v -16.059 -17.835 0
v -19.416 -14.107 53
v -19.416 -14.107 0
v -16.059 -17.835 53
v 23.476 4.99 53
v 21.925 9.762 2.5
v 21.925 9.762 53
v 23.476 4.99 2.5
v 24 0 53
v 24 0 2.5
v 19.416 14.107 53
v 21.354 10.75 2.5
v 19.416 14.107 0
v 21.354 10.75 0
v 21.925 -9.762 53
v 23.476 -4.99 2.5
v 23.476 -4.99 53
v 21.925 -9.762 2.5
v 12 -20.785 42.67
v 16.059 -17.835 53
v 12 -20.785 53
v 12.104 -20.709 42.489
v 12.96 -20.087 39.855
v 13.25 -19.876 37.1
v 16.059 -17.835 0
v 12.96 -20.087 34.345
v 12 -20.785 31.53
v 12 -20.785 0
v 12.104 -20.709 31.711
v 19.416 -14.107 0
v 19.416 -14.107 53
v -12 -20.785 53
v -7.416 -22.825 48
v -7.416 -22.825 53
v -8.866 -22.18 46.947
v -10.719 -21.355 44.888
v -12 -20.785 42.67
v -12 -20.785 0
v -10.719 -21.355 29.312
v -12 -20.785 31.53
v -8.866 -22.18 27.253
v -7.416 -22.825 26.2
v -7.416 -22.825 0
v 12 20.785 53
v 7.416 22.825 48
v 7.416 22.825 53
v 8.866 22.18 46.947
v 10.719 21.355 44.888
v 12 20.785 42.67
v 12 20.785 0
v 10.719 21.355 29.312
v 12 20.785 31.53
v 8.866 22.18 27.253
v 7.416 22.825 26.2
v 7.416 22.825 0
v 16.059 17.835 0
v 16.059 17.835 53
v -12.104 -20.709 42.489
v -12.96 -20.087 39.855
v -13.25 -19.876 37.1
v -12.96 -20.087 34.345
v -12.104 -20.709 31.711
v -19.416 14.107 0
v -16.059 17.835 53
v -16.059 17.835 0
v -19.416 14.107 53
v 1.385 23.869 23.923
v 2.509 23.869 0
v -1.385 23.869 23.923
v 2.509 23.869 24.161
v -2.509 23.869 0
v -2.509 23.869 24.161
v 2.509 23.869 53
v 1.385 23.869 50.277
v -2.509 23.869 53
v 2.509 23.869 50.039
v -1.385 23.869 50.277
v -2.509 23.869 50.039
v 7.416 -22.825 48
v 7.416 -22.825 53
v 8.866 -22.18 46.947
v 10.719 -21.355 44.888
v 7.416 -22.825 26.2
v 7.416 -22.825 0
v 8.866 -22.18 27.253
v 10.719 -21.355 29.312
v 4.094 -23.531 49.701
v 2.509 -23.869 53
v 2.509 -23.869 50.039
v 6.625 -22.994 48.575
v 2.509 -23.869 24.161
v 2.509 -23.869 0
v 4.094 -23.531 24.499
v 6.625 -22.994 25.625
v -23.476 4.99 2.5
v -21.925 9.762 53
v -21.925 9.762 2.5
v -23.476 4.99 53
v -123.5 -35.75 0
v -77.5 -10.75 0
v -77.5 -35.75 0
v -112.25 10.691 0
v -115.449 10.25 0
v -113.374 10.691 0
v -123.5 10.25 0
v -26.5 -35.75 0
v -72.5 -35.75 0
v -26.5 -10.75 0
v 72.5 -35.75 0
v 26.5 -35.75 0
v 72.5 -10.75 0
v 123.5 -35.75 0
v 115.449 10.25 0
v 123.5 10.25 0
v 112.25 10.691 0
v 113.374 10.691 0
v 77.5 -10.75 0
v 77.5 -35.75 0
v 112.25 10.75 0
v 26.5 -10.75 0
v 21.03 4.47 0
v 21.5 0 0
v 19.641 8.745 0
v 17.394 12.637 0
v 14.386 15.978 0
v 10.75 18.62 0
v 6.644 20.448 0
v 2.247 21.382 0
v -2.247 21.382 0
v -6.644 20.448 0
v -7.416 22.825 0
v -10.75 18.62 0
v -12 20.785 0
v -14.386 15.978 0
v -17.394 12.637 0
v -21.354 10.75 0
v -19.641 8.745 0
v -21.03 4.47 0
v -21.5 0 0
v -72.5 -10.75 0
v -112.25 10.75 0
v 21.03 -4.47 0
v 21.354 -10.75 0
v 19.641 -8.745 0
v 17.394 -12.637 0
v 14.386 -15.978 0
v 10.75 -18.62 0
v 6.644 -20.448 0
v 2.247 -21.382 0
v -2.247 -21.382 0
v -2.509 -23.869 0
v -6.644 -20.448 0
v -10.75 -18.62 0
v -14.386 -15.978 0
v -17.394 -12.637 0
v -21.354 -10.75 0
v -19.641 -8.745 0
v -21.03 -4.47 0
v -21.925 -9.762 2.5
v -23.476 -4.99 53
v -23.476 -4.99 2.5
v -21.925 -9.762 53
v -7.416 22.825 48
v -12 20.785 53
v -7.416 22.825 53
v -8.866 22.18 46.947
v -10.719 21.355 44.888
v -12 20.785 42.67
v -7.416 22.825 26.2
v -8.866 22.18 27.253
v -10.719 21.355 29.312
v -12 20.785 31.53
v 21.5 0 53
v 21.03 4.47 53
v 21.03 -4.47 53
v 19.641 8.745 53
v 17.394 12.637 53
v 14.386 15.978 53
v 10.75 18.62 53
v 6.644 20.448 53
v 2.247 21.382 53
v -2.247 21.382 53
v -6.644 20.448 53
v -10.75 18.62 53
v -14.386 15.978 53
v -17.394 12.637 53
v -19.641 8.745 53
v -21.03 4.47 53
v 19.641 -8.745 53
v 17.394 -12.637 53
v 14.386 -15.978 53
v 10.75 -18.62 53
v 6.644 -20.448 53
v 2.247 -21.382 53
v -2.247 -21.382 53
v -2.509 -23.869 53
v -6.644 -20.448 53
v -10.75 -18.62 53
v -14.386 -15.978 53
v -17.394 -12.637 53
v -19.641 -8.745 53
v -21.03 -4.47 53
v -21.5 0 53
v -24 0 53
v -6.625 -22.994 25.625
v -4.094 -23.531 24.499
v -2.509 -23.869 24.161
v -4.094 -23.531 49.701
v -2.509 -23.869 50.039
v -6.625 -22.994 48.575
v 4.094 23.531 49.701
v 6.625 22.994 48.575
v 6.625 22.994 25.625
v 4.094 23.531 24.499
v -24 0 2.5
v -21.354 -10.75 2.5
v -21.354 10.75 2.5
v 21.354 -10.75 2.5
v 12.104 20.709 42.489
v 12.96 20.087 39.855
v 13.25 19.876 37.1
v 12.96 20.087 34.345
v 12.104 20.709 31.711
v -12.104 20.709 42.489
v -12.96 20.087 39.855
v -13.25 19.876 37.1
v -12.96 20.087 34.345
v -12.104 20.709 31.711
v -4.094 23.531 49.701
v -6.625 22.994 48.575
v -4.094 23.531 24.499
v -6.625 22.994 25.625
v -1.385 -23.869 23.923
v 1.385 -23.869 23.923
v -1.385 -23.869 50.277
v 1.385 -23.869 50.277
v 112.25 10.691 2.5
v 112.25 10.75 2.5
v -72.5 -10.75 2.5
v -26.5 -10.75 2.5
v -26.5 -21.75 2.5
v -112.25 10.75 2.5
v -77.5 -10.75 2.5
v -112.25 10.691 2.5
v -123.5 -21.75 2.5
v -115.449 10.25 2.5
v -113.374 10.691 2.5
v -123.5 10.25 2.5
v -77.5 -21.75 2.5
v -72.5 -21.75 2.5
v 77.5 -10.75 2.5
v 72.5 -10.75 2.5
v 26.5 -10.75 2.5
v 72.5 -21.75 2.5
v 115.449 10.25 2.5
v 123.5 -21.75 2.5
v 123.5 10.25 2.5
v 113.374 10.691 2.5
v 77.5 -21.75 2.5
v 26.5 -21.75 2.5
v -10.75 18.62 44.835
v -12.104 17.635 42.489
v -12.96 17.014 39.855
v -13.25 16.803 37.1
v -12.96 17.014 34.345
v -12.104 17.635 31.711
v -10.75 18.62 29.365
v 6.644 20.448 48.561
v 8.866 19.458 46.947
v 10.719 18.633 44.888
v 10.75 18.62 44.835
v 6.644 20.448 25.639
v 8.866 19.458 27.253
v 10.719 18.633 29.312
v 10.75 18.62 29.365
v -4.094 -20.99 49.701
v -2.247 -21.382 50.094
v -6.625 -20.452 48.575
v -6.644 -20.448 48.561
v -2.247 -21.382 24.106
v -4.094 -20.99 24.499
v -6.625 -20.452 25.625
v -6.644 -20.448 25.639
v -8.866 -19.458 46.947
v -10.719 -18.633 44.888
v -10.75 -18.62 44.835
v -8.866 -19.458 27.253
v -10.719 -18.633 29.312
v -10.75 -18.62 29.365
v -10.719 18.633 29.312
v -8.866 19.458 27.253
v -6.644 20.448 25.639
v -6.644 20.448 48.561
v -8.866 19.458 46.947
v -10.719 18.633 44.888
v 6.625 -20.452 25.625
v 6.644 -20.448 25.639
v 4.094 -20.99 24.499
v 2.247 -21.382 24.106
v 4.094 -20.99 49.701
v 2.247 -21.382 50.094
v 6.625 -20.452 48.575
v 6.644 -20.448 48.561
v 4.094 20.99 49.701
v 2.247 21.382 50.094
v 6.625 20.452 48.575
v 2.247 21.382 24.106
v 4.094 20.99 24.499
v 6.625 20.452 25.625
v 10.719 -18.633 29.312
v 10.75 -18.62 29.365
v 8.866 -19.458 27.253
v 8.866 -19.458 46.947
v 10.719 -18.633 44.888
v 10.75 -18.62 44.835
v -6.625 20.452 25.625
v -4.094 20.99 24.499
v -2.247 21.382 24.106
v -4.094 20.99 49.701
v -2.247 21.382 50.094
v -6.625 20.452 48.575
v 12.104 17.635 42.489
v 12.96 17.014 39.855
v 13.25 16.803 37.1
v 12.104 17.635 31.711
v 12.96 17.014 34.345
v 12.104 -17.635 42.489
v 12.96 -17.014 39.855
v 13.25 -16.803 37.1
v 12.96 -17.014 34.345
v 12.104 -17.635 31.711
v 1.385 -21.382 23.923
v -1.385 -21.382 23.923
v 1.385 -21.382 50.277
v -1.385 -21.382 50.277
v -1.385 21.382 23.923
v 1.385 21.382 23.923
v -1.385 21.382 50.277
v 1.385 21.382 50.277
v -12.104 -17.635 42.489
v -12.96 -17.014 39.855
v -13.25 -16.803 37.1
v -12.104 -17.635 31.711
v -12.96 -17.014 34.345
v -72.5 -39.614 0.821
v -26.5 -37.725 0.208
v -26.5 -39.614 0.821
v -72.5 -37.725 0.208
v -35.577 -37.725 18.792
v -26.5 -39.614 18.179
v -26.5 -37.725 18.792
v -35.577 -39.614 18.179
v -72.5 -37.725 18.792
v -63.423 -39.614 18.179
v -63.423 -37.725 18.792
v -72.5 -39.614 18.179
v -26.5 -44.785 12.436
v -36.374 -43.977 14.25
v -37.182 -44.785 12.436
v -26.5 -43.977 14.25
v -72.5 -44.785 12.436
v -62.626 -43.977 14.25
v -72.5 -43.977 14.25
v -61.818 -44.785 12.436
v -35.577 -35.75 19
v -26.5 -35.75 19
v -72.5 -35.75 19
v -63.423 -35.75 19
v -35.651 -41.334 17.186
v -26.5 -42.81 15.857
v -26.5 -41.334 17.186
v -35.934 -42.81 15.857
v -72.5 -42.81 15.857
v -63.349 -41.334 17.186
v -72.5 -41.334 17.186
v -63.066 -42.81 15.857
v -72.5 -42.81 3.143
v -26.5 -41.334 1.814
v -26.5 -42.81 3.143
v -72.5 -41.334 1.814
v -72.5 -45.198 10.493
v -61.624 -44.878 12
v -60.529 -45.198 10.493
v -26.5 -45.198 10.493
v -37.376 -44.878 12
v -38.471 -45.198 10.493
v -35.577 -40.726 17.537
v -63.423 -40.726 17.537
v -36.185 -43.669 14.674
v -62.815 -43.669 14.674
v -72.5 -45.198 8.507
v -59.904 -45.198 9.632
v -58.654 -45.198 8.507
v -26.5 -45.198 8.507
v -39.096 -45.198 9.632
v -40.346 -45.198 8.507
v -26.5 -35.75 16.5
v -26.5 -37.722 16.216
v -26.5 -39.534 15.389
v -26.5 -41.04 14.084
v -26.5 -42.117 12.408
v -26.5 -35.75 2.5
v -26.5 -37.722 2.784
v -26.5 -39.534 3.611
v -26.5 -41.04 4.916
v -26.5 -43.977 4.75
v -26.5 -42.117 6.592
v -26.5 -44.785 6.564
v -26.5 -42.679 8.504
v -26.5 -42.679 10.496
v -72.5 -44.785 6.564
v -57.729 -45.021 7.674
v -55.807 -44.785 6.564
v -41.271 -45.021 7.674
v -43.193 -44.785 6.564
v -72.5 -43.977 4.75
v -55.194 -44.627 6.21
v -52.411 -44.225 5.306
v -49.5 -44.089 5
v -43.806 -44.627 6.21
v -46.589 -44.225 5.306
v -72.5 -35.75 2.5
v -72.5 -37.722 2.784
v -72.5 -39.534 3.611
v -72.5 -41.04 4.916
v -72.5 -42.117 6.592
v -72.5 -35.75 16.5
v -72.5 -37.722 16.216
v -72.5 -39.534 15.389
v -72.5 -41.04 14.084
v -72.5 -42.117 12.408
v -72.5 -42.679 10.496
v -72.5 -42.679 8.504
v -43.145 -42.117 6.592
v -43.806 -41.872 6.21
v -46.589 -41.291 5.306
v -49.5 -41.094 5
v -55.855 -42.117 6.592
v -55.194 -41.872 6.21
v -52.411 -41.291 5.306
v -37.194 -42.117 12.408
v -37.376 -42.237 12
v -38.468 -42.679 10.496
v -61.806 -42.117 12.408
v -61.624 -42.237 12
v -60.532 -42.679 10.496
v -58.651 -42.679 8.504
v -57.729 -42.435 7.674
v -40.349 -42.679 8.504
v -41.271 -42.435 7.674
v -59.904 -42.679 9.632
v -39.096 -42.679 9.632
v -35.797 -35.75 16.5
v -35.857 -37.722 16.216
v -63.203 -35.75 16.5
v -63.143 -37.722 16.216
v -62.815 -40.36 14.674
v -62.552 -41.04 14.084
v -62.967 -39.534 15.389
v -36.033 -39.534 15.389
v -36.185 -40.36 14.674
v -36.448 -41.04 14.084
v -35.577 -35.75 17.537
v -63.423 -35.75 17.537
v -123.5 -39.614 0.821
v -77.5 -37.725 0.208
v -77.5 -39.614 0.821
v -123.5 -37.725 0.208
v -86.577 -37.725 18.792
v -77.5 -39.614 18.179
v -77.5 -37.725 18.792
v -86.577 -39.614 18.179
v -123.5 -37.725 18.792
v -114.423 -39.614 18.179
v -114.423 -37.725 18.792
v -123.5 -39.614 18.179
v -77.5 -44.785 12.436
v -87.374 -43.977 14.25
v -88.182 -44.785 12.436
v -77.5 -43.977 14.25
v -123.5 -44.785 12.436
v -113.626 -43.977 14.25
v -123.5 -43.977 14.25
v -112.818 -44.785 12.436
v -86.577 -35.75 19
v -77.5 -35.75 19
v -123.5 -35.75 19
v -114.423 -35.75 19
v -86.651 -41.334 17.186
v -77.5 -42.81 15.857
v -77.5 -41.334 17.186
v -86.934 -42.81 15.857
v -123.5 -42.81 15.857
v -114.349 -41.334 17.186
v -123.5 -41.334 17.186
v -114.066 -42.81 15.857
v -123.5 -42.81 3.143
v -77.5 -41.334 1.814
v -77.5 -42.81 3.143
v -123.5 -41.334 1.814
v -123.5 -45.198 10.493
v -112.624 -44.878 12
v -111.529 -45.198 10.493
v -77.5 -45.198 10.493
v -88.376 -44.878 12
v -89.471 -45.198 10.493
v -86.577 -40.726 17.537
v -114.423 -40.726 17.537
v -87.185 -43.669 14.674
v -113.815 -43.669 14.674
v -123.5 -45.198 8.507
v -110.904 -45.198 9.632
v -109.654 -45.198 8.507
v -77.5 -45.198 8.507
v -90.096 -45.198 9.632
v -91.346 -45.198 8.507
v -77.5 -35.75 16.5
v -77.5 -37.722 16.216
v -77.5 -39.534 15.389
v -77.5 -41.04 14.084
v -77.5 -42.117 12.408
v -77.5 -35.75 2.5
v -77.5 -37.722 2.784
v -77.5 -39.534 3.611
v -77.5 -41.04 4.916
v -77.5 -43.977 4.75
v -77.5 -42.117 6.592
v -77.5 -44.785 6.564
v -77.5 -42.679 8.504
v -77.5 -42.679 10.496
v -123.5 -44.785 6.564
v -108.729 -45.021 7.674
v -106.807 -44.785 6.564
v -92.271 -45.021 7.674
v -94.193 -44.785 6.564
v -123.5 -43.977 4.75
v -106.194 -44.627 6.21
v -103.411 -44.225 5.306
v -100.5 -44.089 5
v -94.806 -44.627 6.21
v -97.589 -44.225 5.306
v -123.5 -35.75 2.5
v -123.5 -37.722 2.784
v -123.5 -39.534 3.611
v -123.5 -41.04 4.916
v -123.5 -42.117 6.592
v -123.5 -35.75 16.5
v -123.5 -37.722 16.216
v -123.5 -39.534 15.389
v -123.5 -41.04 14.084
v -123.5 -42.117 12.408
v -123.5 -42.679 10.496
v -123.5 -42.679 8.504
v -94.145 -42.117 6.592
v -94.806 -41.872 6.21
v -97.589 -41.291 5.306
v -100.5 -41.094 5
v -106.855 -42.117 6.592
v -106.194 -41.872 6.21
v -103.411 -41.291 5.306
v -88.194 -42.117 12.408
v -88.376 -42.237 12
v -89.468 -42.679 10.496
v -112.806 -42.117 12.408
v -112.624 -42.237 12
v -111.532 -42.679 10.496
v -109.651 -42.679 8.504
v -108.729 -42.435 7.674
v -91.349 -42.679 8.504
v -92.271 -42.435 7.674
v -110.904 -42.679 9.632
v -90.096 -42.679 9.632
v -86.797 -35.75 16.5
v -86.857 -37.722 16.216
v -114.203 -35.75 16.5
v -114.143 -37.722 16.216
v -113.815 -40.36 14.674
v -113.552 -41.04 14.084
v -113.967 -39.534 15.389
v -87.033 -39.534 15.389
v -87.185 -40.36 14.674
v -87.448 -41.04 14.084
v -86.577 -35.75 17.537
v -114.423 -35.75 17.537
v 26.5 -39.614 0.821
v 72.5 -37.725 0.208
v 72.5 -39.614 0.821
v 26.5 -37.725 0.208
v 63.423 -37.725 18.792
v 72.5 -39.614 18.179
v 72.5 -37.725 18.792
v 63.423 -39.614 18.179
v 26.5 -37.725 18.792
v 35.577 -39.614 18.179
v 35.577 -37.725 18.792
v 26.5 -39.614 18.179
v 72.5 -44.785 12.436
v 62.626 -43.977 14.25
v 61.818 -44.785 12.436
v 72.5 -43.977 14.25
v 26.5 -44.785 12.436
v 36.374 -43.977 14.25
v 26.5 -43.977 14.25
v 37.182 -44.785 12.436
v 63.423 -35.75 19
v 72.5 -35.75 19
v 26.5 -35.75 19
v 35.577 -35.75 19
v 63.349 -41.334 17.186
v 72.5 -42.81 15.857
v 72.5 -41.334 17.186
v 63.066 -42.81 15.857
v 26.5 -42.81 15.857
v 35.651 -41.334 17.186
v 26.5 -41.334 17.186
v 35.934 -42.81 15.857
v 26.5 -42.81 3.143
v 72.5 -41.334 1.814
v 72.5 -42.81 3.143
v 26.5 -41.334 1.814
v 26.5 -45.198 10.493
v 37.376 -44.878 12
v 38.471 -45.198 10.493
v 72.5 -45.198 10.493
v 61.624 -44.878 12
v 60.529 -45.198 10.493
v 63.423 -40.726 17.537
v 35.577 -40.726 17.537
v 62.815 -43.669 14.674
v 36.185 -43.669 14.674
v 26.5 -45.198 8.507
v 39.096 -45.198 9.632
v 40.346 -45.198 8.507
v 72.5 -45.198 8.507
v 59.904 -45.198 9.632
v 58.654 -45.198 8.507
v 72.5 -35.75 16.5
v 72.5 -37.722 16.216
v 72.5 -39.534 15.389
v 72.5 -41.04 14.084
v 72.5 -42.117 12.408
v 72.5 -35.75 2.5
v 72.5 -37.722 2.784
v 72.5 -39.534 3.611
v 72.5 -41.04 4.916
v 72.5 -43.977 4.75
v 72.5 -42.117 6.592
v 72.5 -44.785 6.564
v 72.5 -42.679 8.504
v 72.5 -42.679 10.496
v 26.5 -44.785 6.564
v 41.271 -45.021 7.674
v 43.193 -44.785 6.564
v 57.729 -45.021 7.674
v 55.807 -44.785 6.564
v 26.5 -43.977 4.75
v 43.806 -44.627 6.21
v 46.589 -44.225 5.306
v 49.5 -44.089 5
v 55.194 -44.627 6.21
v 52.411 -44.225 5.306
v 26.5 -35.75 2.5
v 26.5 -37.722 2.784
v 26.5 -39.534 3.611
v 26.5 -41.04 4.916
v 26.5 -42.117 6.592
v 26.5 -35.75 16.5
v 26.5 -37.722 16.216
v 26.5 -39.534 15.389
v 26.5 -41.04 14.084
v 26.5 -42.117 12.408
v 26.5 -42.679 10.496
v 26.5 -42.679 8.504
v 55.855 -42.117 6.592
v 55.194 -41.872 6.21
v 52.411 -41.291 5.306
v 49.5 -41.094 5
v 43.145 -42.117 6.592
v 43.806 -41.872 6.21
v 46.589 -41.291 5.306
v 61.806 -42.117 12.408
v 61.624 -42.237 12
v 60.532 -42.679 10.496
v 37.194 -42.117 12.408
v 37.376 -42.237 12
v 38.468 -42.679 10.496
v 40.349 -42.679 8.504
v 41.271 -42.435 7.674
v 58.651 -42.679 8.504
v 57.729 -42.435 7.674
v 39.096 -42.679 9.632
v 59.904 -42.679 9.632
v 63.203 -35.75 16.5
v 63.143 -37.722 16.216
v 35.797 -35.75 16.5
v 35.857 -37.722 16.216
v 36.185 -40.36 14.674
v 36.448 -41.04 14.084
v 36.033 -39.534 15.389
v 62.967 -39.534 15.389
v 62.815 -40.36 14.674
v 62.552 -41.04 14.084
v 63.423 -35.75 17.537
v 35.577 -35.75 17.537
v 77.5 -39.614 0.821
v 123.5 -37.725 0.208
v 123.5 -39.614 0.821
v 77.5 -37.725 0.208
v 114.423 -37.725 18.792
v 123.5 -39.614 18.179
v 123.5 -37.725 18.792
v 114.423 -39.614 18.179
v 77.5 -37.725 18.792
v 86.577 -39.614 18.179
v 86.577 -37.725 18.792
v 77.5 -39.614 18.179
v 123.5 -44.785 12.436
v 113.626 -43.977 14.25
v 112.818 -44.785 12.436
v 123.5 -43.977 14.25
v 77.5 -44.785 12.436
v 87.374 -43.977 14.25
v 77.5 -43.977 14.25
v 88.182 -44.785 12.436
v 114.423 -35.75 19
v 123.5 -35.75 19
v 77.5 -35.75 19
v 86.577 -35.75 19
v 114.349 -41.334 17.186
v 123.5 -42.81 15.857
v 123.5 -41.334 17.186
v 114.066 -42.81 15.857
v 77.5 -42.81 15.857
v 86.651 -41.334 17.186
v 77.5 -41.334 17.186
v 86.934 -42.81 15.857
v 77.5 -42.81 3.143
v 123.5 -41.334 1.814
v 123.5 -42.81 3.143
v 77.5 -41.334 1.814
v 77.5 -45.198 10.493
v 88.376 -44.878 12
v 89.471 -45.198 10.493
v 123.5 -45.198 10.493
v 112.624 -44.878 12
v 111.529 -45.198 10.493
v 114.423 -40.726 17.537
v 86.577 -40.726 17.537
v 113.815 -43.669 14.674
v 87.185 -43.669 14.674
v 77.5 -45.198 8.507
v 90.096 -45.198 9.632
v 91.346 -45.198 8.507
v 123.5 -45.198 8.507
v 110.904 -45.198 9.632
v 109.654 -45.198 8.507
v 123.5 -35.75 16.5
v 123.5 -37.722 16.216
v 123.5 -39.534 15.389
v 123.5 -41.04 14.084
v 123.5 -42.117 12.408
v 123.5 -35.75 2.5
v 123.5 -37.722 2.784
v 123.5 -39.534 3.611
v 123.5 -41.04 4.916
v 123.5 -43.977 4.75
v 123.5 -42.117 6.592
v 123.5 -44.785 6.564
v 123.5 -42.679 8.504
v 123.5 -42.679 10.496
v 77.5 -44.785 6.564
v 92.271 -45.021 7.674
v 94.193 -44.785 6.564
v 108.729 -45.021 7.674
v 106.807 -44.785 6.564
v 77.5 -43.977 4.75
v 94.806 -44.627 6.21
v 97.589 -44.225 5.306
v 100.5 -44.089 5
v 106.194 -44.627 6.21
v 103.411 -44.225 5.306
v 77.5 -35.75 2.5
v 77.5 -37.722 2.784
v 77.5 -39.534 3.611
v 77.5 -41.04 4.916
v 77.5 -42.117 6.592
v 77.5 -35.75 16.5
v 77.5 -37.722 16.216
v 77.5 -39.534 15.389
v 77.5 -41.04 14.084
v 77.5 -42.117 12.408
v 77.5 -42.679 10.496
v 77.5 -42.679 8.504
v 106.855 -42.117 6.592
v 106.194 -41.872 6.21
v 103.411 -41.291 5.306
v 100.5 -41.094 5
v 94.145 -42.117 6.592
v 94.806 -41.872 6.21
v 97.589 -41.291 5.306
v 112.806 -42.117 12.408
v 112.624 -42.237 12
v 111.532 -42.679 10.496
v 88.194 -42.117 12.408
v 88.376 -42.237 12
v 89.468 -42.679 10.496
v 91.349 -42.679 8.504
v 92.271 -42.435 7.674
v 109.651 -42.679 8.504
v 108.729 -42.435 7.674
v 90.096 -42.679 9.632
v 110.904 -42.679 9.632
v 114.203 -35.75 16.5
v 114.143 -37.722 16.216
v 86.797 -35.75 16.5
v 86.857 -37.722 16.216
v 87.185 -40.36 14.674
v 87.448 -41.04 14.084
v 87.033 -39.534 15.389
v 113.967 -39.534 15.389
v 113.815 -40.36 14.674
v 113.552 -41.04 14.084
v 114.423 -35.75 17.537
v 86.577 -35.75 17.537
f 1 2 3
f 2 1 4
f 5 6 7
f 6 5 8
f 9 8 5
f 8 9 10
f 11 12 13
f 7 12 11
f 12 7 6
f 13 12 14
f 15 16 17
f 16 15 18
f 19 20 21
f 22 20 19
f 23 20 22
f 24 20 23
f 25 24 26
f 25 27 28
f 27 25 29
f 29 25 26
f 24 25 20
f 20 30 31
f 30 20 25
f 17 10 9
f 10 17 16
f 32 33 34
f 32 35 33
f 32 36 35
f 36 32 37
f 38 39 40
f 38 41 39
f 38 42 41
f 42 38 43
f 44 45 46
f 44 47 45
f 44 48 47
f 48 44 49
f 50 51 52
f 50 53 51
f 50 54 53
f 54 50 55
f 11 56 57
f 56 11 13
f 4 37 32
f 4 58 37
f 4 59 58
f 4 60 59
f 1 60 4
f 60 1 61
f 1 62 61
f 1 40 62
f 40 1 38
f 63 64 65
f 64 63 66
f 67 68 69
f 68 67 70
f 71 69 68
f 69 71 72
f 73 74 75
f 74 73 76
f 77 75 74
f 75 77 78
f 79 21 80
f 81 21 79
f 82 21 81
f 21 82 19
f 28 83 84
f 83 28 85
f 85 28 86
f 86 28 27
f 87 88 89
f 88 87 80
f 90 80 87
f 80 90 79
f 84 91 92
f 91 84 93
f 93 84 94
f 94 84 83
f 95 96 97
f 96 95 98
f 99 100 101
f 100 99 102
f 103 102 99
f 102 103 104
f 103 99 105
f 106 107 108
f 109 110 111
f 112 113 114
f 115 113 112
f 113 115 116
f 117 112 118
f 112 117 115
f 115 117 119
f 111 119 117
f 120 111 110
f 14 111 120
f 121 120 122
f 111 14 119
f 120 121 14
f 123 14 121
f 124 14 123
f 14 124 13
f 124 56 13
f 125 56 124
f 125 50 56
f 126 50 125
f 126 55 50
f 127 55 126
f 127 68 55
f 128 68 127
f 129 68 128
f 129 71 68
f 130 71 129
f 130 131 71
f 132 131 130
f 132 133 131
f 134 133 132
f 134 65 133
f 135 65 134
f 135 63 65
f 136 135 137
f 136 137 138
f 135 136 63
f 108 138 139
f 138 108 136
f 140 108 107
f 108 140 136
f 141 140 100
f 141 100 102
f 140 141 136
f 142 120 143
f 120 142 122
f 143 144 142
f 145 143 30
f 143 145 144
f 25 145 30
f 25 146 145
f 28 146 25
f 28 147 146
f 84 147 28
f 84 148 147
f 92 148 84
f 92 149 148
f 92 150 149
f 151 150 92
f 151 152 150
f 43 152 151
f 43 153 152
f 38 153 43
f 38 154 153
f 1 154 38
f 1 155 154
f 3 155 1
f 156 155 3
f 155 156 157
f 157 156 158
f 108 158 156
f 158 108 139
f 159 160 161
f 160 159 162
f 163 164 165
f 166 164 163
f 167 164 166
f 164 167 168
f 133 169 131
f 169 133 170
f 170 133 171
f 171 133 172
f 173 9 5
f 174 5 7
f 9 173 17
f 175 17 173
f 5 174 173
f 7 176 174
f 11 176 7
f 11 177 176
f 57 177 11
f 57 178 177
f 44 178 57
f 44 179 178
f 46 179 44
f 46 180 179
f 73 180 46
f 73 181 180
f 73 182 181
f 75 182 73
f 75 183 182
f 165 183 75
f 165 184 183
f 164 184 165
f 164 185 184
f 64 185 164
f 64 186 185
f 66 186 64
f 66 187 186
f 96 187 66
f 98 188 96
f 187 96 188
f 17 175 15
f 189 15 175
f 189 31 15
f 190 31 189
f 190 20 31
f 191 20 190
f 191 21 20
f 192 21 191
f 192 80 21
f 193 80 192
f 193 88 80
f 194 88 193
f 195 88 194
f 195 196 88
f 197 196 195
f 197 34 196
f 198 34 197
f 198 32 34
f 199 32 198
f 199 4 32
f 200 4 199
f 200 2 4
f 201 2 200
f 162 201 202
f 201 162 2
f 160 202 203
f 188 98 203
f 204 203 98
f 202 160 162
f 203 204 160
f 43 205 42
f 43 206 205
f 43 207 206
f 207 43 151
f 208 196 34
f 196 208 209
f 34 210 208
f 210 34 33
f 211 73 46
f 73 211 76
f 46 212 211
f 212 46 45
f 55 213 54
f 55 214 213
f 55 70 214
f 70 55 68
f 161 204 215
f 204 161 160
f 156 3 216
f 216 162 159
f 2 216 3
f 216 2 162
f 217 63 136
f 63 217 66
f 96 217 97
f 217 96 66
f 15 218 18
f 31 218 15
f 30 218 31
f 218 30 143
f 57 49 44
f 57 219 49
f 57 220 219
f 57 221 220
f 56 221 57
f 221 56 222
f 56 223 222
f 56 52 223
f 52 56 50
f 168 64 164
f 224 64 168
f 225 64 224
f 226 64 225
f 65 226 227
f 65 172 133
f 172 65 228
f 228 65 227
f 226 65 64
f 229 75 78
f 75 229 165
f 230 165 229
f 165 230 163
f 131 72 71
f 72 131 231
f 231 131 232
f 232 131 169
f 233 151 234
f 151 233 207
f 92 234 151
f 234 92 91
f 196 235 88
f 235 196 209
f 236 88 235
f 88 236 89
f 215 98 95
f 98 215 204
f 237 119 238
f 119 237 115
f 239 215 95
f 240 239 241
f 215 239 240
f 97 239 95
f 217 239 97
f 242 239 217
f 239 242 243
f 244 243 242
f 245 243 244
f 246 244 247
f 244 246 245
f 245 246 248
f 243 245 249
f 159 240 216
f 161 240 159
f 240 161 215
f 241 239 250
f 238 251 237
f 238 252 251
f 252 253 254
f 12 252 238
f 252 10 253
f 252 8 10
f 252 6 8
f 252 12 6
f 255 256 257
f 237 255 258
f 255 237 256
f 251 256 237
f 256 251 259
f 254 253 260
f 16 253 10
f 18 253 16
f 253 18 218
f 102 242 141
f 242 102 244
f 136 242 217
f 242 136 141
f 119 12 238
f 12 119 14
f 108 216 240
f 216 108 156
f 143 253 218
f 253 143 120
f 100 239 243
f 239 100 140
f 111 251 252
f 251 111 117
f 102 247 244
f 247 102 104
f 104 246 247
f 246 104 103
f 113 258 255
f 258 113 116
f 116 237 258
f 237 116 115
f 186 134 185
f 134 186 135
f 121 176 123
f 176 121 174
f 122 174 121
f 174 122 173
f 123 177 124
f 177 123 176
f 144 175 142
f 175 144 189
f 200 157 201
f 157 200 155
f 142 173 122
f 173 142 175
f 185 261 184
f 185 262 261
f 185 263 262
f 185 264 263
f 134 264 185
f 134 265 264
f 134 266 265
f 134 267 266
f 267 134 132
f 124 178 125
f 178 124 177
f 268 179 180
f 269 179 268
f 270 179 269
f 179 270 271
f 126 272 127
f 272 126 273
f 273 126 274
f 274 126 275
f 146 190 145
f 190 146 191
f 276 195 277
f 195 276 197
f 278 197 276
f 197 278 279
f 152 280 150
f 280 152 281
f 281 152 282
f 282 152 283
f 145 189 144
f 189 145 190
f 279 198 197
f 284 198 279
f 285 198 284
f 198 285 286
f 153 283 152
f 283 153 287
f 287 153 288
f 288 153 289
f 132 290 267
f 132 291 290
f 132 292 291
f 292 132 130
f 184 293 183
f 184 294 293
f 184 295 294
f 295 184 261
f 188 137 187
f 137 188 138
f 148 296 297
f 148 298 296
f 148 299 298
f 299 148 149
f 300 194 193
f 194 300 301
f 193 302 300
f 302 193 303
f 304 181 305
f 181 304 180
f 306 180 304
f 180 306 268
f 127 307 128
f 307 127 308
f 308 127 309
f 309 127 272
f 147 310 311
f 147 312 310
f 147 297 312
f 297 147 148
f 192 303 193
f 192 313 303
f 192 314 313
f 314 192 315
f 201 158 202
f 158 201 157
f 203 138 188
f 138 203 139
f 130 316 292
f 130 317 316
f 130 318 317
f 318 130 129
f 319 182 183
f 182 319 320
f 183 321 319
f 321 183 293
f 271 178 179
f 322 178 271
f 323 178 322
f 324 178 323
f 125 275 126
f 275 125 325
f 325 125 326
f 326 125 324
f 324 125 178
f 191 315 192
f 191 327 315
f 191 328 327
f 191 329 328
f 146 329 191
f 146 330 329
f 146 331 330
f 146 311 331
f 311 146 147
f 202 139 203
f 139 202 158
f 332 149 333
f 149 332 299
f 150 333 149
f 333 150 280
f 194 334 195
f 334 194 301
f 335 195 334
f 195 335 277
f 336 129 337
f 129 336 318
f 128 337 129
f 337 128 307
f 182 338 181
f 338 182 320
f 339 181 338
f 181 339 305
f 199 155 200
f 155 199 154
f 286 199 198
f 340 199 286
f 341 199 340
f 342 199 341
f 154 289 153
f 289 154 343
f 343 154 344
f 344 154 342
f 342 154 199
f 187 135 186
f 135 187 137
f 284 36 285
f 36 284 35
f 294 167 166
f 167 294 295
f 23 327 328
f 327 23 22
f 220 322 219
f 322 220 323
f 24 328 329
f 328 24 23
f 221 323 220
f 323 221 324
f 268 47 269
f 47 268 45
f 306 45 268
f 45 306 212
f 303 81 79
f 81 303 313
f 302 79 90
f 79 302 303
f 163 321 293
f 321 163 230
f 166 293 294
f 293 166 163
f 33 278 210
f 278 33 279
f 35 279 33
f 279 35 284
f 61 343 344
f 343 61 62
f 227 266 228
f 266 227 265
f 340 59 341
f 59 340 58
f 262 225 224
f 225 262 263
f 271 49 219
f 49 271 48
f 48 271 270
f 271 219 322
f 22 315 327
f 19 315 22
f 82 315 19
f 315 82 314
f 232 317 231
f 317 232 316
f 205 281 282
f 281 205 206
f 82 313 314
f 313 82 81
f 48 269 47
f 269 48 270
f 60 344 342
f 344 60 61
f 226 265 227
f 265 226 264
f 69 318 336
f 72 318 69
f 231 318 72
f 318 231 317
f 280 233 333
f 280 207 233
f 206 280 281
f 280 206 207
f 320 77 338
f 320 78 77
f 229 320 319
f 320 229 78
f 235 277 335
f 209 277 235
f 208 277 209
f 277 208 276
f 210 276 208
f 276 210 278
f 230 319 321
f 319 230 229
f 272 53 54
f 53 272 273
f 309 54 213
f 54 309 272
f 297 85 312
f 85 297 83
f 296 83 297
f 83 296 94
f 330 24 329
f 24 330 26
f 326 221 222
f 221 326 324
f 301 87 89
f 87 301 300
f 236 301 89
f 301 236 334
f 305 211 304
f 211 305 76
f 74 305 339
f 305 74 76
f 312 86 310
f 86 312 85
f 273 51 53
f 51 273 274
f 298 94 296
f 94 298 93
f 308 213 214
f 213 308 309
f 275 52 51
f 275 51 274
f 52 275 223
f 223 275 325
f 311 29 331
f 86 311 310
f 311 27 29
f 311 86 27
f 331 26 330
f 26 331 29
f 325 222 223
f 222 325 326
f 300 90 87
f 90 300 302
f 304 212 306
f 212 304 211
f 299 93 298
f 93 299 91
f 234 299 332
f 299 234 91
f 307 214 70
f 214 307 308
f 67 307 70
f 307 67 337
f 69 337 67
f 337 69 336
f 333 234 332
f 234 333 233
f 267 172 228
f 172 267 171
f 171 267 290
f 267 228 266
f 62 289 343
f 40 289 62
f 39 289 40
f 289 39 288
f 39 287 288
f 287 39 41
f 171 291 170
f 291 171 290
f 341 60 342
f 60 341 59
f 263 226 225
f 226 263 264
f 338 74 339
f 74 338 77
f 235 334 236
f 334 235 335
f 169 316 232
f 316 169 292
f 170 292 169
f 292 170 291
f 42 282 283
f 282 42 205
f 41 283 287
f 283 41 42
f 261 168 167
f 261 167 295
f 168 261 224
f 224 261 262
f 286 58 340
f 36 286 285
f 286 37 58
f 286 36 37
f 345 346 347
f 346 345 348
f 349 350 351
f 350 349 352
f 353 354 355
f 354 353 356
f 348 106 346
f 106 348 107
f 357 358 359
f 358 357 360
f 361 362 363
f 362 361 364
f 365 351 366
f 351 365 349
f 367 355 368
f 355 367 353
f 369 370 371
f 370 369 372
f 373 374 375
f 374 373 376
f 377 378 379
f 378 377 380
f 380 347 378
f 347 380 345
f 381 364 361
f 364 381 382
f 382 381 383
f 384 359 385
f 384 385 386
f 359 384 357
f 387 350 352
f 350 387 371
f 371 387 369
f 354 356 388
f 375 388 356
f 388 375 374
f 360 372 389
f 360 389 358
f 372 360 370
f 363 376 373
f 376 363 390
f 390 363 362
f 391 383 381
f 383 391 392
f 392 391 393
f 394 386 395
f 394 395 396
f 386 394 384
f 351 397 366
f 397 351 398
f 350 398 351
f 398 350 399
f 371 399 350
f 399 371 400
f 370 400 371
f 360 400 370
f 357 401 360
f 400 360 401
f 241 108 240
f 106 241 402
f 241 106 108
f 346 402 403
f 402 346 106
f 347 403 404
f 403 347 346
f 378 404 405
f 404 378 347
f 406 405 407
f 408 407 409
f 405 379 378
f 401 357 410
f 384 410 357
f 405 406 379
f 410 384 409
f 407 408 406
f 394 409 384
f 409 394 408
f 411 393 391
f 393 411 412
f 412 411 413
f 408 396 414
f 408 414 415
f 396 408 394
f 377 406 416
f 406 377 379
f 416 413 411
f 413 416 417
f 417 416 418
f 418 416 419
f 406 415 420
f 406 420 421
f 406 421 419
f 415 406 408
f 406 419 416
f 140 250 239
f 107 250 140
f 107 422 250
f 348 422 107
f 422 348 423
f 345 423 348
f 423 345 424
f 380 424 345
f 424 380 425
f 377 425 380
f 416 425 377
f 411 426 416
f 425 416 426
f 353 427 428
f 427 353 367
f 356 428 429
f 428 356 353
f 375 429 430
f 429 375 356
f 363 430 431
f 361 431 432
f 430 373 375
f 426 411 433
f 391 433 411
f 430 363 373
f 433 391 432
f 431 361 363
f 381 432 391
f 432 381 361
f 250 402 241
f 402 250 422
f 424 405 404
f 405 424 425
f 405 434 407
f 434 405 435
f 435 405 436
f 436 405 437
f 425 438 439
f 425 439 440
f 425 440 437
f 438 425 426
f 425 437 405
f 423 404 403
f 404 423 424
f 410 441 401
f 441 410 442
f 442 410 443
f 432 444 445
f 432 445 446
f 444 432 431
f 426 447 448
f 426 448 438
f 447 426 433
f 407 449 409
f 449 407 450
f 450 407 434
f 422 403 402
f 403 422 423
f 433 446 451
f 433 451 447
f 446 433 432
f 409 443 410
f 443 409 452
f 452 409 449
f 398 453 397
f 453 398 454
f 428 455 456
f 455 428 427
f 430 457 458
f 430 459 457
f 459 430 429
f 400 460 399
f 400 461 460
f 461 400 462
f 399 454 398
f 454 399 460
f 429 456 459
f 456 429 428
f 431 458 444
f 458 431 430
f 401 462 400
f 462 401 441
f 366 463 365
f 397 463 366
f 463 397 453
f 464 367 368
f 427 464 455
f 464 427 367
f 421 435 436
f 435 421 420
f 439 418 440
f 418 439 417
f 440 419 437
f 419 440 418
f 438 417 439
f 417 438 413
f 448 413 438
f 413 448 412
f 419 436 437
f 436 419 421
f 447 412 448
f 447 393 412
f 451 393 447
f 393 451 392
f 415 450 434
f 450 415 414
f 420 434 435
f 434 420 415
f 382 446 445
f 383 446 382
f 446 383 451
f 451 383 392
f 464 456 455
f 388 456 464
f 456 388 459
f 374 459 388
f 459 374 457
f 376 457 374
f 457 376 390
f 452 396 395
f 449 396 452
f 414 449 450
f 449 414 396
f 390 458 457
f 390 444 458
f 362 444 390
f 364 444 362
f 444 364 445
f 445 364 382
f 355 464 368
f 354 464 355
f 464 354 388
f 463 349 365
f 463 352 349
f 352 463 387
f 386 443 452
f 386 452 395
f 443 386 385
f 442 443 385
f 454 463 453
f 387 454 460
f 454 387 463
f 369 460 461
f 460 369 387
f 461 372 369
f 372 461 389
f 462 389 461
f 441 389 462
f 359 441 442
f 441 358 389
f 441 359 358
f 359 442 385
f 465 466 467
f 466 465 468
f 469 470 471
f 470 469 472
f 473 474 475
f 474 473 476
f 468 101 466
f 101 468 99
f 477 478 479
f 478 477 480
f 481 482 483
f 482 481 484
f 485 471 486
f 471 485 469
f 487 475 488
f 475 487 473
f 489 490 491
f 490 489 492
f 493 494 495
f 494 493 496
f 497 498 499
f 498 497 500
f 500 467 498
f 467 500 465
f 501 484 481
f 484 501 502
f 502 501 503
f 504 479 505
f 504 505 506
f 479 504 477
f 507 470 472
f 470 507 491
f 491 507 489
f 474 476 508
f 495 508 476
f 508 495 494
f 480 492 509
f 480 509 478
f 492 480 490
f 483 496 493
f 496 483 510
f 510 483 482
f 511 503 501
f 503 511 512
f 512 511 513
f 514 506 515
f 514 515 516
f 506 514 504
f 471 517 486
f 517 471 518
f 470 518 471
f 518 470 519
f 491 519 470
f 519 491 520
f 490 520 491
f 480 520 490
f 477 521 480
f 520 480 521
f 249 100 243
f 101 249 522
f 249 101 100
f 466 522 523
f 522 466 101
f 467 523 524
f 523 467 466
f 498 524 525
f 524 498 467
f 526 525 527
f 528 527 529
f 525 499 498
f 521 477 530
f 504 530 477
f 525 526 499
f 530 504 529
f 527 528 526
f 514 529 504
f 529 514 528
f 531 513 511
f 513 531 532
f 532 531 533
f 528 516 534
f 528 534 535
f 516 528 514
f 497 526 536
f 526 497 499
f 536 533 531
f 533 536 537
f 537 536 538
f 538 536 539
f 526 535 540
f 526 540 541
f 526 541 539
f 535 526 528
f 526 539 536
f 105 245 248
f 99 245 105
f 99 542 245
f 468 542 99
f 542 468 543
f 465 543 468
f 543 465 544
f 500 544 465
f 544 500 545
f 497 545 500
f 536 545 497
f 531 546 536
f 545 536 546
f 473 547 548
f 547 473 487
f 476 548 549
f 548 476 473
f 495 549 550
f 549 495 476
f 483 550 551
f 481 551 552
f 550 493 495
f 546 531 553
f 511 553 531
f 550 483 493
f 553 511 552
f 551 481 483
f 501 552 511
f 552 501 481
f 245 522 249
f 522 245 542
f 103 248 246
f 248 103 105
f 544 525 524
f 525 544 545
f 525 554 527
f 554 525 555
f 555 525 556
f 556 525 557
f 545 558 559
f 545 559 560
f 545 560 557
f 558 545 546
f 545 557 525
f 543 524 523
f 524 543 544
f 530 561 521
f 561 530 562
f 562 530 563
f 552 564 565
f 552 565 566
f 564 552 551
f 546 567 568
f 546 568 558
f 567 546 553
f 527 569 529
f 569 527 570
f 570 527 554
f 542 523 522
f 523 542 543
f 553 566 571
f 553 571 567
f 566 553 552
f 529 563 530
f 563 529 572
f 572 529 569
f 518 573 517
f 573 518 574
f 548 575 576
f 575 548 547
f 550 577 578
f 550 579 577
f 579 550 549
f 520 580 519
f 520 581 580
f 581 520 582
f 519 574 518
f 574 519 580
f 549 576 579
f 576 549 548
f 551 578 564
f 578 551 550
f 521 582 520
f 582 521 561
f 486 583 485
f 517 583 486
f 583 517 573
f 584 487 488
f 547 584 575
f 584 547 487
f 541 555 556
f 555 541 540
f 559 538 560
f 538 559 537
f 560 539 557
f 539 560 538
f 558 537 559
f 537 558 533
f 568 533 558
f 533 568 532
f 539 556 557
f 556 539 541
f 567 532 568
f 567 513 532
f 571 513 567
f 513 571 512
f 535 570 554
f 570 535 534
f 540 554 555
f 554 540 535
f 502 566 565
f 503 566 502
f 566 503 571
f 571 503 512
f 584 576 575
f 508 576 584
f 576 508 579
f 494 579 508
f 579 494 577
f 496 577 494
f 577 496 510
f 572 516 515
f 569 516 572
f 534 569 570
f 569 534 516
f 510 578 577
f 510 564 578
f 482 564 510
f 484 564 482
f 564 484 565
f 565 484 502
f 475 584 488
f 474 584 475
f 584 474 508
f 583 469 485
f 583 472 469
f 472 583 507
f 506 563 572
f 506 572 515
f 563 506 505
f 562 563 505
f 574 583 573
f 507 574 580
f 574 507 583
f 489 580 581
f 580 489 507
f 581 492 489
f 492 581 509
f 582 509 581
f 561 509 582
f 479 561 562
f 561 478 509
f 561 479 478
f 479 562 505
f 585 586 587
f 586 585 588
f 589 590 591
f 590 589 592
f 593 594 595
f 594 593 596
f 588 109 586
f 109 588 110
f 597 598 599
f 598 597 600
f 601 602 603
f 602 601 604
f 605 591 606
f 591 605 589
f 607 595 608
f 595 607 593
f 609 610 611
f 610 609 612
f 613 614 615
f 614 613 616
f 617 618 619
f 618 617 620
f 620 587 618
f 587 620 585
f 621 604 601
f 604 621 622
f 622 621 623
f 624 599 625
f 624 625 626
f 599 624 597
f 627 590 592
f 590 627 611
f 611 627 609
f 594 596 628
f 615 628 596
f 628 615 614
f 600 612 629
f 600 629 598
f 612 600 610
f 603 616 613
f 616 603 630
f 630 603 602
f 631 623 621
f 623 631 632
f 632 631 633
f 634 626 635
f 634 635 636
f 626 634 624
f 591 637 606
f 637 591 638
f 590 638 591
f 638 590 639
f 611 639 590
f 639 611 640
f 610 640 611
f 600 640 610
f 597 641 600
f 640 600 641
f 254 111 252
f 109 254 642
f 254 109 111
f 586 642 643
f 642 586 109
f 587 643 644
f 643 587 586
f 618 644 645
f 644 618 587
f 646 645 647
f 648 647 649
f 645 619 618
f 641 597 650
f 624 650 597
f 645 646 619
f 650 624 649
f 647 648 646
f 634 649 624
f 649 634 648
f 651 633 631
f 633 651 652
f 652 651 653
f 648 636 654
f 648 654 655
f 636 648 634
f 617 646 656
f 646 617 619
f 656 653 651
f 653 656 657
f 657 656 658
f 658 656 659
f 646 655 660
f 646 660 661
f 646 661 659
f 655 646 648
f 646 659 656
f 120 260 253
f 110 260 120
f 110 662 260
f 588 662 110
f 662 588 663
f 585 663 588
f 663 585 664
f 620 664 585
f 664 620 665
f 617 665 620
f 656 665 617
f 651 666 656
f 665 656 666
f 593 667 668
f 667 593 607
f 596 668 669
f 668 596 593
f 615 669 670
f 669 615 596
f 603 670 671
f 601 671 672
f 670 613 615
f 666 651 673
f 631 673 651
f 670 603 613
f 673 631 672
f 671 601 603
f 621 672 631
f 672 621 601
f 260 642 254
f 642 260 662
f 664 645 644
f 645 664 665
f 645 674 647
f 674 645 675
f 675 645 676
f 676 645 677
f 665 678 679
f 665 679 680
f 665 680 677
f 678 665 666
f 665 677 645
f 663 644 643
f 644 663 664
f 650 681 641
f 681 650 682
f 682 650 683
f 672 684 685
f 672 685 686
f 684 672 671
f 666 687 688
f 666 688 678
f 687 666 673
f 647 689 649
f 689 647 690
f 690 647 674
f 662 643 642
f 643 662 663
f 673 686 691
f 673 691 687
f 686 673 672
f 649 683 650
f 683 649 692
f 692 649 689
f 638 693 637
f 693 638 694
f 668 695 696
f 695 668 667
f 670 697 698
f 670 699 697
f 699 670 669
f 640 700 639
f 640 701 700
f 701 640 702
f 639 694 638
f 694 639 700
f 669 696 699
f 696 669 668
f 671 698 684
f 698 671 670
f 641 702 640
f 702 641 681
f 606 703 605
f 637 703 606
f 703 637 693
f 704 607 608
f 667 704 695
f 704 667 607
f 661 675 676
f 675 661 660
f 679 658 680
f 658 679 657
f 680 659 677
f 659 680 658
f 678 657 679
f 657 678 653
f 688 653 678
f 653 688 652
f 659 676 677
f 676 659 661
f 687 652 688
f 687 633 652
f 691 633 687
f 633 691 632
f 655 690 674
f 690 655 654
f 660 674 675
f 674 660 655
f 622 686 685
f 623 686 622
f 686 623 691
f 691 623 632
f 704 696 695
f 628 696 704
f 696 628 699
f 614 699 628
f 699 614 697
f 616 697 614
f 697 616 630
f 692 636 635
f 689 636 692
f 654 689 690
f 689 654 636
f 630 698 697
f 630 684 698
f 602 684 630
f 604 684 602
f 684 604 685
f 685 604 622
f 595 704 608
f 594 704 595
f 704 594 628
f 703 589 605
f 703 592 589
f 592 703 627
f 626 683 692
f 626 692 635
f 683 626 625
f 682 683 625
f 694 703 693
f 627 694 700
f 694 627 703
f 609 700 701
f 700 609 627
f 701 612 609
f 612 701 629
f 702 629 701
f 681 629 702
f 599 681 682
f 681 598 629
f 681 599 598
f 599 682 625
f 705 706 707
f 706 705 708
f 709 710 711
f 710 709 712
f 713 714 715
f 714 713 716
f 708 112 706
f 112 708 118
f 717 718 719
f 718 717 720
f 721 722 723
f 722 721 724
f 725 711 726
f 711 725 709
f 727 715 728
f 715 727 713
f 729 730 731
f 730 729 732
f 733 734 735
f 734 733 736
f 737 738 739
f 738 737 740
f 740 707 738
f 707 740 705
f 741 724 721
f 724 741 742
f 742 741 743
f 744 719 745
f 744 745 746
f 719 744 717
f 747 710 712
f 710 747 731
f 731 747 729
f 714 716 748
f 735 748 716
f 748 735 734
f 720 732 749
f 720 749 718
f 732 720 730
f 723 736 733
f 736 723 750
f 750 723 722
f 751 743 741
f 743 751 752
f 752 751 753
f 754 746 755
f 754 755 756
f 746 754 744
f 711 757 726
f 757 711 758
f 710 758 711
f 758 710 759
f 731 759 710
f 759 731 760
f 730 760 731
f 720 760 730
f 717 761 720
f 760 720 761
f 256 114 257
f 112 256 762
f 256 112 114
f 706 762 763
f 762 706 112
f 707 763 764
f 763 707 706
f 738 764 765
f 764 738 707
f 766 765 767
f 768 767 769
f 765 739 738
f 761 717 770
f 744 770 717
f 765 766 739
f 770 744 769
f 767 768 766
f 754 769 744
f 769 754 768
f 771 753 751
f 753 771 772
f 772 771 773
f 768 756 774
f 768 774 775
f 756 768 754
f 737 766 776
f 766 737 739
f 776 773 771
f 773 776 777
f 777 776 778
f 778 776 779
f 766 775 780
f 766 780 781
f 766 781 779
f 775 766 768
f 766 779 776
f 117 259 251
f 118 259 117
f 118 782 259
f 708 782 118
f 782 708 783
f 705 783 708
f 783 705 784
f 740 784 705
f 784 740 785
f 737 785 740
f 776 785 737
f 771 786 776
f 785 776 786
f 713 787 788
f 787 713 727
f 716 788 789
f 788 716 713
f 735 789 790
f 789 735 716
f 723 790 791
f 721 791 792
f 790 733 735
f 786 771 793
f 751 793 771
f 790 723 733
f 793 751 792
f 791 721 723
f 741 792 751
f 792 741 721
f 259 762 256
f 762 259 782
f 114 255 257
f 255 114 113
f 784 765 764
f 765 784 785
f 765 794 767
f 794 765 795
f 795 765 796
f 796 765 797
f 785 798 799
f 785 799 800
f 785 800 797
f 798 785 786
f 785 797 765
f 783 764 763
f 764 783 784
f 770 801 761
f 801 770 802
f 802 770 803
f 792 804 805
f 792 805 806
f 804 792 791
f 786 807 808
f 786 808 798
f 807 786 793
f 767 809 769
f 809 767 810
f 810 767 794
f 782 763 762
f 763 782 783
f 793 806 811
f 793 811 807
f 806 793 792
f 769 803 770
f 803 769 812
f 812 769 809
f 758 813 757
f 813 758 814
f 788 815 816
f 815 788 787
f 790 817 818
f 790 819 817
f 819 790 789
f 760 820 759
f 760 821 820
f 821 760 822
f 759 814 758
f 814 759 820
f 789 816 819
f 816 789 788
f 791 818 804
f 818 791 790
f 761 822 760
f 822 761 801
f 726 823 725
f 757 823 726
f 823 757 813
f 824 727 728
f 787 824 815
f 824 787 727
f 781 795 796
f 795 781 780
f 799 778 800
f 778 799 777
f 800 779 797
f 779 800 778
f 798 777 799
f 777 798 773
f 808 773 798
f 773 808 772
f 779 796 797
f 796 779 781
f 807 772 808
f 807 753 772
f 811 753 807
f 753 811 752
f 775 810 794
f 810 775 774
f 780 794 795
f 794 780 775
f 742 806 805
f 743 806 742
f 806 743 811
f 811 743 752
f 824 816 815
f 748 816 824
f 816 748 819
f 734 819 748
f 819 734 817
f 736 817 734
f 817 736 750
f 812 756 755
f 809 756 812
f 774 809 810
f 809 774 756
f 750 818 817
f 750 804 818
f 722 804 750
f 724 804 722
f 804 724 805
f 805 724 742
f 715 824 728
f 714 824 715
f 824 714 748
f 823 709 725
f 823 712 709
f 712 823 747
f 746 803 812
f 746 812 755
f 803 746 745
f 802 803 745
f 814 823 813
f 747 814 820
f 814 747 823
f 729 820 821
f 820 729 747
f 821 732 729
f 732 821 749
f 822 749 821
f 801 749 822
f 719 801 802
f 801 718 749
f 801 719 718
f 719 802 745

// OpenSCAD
// Drzak holitek na sprchovou tyc
// navleka se na dolni konzoli
// tloustka steny
wall = 2.5;
// prumer konsole
konsd1 = 43;
// prumer tycky
tycd1 = 26.5;
// hloubka uchyceni
uchyth = tycd1;
// sirka drzaku
drzaks = 46;
drzakob = 14;
drzakmez = 28;
pdrz = 4;

module uchyceni() {
//  sirkapasu na drzaky pdrz*(drzaks+2*wall)+(konsd+2*wall)
  sirkapasu = pdrz*drzaks+konsd1-wall; 
  difference() {
    union() {
      cylinder(h=uchyth+tycd1, d=konsd1+2*wall);
      translate([-(sirkapasu/2),-(konsd1/4),0]) cube([sirkapasu,konsd1/2,wall]);
      translate([-(sirkapasu/2),0,0]) cylinder(h=wall,d=konsd1/2);
      translate([sirkapasu/2,0,0]) cylinder(h=wall,d=konsd1/2);  
    }    
    union() {
      cylinder(h=uchyth+tycd1, d=konsd1);  
      translate([0,(konsd1 + 2*wall)/2,uchyth+tycd1*0.4]) 
        rotate([90,0,0]) 
          cylinder(h = konsd1+2*wall, d = tycd1);  
    }  
   }
}

module drzak() {
  translate([-drzaks/2,-wall/2,drzakob/2+wall])
    rotate([0,90,0])
    union() {
   // translate([-(drzakob/2+wall), 0 ,0]) cube([wall,3*wall,(drzaks - drzakmez)/2]); 
   // translate([-(drzakob/2+wall), 0 ,drzaks-(drzaks - drzakmez)/2]) cube([wall,3*wall,(drzaks - drzakmez)/2]); 
    difference() { 
        union() {
            cylinder(h=drzaks, d=drzakob+2*wall);
            translate([drzakob/2, 0 ,0]) cube([wall,drzaks,drzaks]); 
        } 
        union() { // odcitana cast
           cylinder(h=drzaks,d=drzakob); 
           translate([-(drzakob/2+2*wall), 0 ,0]) cube([drzakob+2*wall,drzakob,drzaks]);
           translate([-(drzakob/2+wall), -drzakob,drzaks/2]) rotate([-90,0,0]) cylinder(h=drzaks, d=drzakmez); 
       }
   }
  }
}



uchyceni();
translate([-(drzaks/2 + konsd1/2 + 2*wall),-(1.5*drzaks)/2,0]) drzak();
translate([-(drzaks + drzaks/2 + konsd1/2 + 4*wall),-(1.5*drzaks)/2,0]) drzak();
translate([(drzaks/2 + konsd1/2 + 2*wall),-(1.5*drzaks)/2,0]) drzak();
translate([(drzaks + drzaks/2 + konsd1/2 + 4*wall),-(1.5*drzaks)/2,0]) drzak();
